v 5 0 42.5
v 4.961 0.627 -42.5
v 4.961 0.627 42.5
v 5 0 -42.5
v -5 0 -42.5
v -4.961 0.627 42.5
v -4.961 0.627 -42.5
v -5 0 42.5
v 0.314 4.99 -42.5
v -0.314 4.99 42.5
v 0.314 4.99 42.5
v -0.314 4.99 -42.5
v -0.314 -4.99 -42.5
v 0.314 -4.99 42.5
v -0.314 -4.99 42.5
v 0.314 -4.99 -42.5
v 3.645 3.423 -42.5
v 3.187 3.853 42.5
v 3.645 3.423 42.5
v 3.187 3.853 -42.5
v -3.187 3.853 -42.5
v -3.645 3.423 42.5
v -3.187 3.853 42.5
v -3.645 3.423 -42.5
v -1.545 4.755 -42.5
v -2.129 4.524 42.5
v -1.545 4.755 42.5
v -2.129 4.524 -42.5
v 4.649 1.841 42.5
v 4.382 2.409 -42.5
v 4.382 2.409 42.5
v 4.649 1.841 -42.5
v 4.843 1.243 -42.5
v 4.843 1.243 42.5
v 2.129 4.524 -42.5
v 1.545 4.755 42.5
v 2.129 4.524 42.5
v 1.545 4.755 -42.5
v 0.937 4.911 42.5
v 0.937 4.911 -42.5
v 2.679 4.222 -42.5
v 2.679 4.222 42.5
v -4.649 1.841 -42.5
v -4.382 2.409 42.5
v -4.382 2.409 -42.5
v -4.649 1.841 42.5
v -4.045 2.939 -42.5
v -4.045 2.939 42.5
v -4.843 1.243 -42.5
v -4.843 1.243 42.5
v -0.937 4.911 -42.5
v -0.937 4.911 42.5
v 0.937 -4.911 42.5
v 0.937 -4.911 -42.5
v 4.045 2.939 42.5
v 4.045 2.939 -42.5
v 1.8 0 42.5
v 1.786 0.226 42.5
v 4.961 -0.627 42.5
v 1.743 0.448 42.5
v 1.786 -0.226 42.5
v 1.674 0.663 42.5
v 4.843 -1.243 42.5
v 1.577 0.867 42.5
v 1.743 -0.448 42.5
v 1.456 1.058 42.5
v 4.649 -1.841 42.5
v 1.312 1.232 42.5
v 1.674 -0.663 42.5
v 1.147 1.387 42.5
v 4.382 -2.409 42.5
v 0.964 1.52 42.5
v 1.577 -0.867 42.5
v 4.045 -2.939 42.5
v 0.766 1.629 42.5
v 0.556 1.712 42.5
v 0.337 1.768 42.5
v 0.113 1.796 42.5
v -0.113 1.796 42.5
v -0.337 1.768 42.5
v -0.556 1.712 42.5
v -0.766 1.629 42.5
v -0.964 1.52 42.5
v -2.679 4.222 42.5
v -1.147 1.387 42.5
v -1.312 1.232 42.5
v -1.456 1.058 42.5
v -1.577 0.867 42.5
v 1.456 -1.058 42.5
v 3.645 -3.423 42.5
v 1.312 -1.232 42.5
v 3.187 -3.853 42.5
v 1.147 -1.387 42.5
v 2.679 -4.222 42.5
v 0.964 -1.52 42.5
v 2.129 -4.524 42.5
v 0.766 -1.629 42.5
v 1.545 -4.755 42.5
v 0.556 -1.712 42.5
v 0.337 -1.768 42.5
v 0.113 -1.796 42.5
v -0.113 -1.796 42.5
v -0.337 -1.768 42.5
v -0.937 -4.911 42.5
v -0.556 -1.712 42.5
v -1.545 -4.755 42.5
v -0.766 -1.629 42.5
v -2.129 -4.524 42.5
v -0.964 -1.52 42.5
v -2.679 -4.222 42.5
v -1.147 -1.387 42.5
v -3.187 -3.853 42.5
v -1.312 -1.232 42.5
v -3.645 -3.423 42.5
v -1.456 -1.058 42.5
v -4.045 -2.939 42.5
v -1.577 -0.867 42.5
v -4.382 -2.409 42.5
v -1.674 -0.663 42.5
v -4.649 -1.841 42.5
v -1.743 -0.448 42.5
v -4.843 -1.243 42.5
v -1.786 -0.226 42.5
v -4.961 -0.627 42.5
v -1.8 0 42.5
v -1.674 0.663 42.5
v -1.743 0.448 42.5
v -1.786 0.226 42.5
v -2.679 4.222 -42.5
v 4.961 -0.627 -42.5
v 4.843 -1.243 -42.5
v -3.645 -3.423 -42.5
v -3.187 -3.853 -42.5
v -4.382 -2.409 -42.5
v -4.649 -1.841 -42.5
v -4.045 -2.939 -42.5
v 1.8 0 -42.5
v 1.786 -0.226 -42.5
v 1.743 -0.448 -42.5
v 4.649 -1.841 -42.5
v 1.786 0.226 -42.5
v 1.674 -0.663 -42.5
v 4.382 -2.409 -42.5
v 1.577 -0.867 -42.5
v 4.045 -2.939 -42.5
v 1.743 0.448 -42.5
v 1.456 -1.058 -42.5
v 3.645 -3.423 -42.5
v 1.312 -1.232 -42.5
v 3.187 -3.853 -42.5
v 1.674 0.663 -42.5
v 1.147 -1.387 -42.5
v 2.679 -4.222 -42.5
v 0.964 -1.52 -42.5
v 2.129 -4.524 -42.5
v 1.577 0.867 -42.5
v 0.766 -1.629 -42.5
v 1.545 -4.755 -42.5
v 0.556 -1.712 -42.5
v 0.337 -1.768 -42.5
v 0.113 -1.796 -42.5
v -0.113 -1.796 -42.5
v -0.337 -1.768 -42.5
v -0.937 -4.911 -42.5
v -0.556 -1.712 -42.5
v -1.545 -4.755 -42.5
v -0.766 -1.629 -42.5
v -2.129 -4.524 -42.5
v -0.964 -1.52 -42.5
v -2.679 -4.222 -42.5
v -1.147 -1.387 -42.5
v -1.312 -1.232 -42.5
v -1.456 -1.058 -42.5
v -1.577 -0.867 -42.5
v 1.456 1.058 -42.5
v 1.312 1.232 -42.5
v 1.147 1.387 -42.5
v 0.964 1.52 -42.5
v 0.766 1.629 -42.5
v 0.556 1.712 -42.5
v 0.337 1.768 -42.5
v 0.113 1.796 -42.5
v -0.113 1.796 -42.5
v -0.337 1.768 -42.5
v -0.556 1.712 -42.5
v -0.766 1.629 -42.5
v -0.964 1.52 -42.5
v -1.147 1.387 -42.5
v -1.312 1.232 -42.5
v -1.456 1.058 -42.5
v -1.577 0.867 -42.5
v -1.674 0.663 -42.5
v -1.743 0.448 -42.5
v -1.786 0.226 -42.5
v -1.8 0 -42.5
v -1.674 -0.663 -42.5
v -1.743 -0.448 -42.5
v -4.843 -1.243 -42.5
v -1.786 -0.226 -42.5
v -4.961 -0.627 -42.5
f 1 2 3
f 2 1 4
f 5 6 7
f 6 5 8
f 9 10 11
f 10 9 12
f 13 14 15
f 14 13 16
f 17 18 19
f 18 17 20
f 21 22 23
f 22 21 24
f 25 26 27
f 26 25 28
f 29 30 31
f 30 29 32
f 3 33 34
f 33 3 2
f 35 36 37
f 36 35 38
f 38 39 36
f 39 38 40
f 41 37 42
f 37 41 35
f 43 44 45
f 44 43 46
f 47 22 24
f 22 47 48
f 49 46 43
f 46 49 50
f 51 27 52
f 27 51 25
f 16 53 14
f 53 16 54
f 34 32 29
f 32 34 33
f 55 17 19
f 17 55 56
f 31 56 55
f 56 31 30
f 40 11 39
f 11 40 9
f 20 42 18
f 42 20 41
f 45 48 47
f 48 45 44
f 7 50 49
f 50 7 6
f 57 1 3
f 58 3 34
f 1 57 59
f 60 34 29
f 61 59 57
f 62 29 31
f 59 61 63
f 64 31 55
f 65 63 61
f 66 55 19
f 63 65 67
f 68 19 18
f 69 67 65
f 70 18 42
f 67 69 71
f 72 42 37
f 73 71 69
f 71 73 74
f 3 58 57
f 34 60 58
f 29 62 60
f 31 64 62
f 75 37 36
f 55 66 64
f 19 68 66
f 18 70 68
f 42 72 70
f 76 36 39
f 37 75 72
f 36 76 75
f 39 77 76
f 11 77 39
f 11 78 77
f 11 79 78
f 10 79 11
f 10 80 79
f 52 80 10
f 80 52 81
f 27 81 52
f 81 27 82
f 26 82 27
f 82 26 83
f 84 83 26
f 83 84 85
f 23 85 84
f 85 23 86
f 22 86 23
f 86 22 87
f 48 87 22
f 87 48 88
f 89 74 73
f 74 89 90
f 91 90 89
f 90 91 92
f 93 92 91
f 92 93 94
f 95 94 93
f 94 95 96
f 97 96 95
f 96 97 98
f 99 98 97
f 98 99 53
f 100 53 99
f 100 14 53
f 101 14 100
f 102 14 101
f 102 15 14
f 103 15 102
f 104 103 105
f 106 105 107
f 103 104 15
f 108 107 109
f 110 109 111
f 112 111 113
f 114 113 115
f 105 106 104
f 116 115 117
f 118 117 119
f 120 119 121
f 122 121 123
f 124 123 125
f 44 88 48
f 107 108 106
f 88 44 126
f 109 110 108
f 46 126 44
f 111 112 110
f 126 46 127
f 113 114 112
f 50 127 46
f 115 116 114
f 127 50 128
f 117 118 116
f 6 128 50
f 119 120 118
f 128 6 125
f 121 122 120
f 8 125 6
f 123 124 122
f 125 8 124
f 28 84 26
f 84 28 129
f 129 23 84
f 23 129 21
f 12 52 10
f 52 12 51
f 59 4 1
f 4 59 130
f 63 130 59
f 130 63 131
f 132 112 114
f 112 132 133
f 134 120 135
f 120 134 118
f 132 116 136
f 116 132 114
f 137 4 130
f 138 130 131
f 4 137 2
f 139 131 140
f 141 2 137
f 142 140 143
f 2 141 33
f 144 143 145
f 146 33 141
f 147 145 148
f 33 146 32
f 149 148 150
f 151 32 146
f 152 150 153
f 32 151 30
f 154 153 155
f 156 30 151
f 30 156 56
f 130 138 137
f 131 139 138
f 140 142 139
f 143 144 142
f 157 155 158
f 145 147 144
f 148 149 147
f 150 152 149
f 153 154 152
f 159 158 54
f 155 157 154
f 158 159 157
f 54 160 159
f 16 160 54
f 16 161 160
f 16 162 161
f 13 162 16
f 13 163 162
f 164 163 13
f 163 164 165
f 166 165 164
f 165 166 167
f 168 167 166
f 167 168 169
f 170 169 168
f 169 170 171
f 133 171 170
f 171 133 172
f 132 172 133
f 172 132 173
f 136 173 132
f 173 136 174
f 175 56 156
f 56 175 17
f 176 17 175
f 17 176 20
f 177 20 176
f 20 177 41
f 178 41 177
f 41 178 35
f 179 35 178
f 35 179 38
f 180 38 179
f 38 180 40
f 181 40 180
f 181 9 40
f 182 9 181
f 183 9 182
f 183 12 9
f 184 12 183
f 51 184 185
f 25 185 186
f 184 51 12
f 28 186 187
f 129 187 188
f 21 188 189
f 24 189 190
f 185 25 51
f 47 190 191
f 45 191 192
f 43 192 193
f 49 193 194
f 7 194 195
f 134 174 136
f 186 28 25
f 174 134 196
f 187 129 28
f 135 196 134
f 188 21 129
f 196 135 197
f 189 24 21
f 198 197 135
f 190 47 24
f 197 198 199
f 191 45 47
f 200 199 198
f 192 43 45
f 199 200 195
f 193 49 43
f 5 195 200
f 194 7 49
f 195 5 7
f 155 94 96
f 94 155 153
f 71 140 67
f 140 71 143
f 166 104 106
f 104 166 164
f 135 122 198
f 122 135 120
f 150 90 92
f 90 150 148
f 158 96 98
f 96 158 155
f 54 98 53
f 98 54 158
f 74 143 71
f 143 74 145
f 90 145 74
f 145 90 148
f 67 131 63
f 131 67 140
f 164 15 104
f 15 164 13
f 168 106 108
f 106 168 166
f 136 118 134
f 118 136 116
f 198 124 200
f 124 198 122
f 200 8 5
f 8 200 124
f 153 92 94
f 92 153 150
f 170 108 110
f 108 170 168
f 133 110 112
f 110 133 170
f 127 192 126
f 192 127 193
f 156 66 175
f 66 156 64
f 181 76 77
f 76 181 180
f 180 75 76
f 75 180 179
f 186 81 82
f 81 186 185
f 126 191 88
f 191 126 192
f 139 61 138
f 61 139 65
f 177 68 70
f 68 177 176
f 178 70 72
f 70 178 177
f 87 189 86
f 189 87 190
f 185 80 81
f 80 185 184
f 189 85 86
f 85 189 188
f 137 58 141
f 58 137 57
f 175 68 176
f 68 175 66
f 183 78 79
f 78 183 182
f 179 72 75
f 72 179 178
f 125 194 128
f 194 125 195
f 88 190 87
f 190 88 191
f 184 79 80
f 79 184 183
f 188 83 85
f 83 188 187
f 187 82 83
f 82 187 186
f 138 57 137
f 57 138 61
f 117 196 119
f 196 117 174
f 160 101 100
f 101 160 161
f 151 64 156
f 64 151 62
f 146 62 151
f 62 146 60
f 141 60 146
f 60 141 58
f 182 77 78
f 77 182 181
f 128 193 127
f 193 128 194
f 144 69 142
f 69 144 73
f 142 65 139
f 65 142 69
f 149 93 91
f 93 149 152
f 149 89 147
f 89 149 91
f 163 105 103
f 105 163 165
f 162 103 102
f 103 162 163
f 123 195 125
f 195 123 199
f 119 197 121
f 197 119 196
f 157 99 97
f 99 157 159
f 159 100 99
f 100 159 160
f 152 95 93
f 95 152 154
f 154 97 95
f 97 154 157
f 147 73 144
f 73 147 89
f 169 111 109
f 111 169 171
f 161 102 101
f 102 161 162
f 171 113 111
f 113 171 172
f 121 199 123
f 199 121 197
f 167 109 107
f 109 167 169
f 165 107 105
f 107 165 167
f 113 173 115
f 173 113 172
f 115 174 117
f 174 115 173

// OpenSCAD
$fn = 50;


difference() {
	union() {
		translate(v = [0, 0, -42.5000000000]) {
			cylinder(h = 85, r = 5.0000000000);
		}
	}
	union() {
		translate(v = [0, 0, -100.0000000000]) {
			cylinder(h = 200, r = 1.8000000000);
		}
	}
}
